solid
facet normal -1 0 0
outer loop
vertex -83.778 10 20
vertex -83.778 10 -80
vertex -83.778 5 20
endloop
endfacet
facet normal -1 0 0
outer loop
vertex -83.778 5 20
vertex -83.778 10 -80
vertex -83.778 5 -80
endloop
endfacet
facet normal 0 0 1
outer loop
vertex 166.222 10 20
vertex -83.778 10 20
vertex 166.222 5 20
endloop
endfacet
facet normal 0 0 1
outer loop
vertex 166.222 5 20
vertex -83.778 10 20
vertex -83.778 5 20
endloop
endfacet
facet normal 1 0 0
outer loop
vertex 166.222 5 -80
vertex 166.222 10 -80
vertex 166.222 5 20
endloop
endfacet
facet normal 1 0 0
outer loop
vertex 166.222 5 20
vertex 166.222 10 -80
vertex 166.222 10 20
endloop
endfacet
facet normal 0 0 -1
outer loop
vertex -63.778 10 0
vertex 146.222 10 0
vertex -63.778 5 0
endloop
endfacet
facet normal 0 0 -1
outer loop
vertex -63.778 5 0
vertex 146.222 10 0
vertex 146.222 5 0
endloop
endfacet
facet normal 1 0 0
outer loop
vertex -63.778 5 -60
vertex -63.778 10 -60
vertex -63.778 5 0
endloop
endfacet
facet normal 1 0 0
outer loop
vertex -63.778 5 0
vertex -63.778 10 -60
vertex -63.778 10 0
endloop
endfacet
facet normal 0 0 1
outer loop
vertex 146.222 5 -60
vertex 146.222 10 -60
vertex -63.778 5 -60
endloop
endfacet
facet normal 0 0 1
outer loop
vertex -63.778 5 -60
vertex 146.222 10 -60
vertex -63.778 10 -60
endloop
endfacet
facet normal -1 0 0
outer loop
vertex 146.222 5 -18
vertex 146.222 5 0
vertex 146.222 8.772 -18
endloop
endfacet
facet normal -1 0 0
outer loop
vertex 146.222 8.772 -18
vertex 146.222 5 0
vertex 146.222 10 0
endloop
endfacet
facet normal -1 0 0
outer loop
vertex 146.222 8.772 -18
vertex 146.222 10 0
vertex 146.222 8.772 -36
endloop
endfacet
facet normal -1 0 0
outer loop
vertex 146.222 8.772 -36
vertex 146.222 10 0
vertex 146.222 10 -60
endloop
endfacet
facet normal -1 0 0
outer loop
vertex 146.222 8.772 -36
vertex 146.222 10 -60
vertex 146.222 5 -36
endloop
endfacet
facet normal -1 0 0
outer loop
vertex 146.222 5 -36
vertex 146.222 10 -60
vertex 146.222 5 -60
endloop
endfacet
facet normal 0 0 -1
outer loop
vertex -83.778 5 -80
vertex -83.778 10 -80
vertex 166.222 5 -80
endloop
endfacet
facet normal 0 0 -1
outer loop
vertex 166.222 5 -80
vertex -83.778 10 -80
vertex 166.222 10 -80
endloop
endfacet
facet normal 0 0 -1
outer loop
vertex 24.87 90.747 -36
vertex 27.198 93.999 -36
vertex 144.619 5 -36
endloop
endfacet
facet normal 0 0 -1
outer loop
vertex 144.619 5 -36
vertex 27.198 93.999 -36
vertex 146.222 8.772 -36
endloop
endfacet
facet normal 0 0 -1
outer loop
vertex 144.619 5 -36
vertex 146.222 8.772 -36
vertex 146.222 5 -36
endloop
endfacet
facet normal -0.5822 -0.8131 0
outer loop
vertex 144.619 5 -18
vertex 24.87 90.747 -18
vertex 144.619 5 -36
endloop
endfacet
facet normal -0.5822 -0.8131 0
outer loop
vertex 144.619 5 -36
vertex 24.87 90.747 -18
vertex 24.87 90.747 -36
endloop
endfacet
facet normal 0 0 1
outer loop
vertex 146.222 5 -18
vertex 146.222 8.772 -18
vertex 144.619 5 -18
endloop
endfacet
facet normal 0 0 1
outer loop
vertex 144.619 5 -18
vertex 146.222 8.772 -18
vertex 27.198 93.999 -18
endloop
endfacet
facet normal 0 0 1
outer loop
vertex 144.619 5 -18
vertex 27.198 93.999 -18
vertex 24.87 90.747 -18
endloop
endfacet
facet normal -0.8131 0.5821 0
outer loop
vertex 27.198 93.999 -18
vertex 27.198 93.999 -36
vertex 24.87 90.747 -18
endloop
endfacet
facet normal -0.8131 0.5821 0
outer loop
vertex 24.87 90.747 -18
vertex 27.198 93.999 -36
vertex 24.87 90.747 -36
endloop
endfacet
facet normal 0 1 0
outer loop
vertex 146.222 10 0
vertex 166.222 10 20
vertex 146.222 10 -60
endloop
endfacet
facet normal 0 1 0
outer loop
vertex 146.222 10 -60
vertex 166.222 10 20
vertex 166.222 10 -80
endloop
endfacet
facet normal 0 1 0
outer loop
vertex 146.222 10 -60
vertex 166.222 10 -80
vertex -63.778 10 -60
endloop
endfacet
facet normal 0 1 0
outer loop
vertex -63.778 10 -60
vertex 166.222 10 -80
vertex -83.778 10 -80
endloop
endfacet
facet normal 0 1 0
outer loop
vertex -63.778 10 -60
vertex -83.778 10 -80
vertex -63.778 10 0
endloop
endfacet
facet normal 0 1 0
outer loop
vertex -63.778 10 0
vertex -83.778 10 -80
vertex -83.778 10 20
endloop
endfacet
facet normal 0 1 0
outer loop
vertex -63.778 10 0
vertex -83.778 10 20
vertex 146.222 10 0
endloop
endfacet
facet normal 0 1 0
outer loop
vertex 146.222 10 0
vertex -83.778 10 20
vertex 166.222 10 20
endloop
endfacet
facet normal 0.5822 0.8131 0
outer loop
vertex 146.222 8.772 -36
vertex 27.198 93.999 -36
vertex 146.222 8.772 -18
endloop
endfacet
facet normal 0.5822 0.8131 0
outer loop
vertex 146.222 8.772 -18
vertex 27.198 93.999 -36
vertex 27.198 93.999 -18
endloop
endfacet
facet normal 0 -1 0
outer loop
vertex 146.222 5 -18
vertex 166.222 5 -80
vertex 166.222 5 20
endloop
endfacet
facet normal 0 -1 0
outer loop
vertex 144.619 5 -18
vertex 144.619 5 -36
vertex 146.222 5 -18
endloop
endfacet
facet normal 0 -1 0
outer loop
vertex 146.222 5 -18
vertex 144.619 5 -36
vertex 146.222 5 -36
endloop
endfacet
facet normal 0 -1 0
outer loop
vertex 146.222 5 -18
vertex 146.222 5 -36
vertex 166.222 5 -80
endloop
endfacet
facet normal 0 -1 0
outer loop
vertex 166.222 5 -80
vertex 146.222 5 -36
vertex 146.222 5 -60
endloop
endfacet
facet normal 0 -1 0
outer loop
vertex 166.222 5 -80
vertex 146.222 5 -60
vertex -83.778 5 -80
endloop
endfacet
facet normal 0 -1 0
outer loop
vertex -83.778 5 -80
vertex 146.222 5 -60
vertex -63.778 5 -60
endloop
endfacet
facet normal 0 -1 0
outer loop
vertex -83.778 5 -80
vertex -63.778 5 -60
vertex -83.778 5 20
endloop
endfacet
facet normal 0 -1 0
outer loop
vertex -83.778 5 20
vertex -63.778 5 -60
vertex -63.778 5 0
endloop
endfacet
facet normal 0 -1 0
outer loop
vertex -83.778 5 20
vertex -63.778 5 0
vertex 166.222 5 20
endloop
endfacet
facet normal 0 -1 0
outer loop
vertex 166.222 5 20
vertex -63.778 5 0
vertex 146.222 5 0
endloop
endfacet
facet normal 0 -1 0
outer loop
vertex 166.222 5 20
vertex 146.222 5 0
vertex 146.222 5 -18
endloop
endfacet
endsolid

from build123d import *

# Parameters (mm, degrees)
SKETCH1_W           = 20
SKETCH1_H           = 60
BOSS_EXTRUDE2_DEPTH = 10
BOSS_EXTRUDE3_DEPTH = 36
SKETCH3_W           = 140
SKETCH3_H           = 140
CUT_EXTRUDE1_DEPTH  = 18
SKETCH4_W           = 8.585490735
SKETCH4_H           = 18
CUT_EXTRUDE3_DEPTH  = 46
SKETCH5_W           = 250
SKETCH5_H           = 5
CUT_EXTRUDE4_DEPTH  = 137


with BuildPart() as part:
    # Sketch1 → Boss-Extrude2 (new body)
    with BuildSketch(Plane(origin=(0, 0, 0), x_dir=(1, 0, 0), z_dir=(0, 1, 0))):
        Polygon((166.222222222, 60), (146.222222222, 60), (-63.777777778, 60), (-83.777777778, 60), (-83.777777778, 80), (166.222222222, 80), align=None)
        with Locations((156.222222222, 30)):
            Rectangle(SKETCH1_W, SKETCH1_H)
        Polygon((166.222222222, 0), (146.222222222, 0), (-63.777777778, 0), (-83.777777778, 0), (-83.777777778, -20), (166.222222222, -20), align=None)
        with Locations((-73.777777778, 30)):
            Rectangle(SKETCH1_W, SKETCH1_H)
    extrude(amount=BOSS_EXTRUDE2_DEPTH)

    # Sketch2 → Boss-Extrude3 (add)
    with BuildSketch(Plane.XY):
        Polygon((155.307951765, 2.266232377), (27.198414629, 93.999150061), (24.869662654, 90.746933242), (148.437318839, 2.266232377), align=None)
    extrude(amount=-BOSS_EXTRUDE3_DEPTH)

    # Sketch3 → Cut-Extrude1 (cut)
    with BuildSketch(Plane.XY):
        with Locations((82.194738609, 80)):
            Rectangle(SKETCH3_W, SKETCH3_H)
    extrude(amount=-CUT_EXTRUDE1_DEPTH, mode=Mode.SUBTRACT)

    # Sketch4 → Cut-Extrude3 (cut)
    with BuildSketch(Plane(origin=(0, 10, 0), x_dir=(1, 0, 0), z_dir=(0, 1, 0))):
        with Locations((141.929476855, 9)):
            Rectangle(SKETCH4_W, SKETCH4_H)
    extrude(amount=-CUT_EXTRUDE3_DEPTH, mode=Mode.SUBTRACT)

    # Sketch5 → Cut-Extrude4 (cut)
    with BuildSketch(Plane.XY.offset(20)):
        with Locations((41.222222222, 2.5)):
            Rectangle(SKETCH5_W, SKETCH5_H)
    extrude(amount=-CUT_EXTRUDE4_DEPTH, mode=Mode.SUBTRACT)


solid = part.part
